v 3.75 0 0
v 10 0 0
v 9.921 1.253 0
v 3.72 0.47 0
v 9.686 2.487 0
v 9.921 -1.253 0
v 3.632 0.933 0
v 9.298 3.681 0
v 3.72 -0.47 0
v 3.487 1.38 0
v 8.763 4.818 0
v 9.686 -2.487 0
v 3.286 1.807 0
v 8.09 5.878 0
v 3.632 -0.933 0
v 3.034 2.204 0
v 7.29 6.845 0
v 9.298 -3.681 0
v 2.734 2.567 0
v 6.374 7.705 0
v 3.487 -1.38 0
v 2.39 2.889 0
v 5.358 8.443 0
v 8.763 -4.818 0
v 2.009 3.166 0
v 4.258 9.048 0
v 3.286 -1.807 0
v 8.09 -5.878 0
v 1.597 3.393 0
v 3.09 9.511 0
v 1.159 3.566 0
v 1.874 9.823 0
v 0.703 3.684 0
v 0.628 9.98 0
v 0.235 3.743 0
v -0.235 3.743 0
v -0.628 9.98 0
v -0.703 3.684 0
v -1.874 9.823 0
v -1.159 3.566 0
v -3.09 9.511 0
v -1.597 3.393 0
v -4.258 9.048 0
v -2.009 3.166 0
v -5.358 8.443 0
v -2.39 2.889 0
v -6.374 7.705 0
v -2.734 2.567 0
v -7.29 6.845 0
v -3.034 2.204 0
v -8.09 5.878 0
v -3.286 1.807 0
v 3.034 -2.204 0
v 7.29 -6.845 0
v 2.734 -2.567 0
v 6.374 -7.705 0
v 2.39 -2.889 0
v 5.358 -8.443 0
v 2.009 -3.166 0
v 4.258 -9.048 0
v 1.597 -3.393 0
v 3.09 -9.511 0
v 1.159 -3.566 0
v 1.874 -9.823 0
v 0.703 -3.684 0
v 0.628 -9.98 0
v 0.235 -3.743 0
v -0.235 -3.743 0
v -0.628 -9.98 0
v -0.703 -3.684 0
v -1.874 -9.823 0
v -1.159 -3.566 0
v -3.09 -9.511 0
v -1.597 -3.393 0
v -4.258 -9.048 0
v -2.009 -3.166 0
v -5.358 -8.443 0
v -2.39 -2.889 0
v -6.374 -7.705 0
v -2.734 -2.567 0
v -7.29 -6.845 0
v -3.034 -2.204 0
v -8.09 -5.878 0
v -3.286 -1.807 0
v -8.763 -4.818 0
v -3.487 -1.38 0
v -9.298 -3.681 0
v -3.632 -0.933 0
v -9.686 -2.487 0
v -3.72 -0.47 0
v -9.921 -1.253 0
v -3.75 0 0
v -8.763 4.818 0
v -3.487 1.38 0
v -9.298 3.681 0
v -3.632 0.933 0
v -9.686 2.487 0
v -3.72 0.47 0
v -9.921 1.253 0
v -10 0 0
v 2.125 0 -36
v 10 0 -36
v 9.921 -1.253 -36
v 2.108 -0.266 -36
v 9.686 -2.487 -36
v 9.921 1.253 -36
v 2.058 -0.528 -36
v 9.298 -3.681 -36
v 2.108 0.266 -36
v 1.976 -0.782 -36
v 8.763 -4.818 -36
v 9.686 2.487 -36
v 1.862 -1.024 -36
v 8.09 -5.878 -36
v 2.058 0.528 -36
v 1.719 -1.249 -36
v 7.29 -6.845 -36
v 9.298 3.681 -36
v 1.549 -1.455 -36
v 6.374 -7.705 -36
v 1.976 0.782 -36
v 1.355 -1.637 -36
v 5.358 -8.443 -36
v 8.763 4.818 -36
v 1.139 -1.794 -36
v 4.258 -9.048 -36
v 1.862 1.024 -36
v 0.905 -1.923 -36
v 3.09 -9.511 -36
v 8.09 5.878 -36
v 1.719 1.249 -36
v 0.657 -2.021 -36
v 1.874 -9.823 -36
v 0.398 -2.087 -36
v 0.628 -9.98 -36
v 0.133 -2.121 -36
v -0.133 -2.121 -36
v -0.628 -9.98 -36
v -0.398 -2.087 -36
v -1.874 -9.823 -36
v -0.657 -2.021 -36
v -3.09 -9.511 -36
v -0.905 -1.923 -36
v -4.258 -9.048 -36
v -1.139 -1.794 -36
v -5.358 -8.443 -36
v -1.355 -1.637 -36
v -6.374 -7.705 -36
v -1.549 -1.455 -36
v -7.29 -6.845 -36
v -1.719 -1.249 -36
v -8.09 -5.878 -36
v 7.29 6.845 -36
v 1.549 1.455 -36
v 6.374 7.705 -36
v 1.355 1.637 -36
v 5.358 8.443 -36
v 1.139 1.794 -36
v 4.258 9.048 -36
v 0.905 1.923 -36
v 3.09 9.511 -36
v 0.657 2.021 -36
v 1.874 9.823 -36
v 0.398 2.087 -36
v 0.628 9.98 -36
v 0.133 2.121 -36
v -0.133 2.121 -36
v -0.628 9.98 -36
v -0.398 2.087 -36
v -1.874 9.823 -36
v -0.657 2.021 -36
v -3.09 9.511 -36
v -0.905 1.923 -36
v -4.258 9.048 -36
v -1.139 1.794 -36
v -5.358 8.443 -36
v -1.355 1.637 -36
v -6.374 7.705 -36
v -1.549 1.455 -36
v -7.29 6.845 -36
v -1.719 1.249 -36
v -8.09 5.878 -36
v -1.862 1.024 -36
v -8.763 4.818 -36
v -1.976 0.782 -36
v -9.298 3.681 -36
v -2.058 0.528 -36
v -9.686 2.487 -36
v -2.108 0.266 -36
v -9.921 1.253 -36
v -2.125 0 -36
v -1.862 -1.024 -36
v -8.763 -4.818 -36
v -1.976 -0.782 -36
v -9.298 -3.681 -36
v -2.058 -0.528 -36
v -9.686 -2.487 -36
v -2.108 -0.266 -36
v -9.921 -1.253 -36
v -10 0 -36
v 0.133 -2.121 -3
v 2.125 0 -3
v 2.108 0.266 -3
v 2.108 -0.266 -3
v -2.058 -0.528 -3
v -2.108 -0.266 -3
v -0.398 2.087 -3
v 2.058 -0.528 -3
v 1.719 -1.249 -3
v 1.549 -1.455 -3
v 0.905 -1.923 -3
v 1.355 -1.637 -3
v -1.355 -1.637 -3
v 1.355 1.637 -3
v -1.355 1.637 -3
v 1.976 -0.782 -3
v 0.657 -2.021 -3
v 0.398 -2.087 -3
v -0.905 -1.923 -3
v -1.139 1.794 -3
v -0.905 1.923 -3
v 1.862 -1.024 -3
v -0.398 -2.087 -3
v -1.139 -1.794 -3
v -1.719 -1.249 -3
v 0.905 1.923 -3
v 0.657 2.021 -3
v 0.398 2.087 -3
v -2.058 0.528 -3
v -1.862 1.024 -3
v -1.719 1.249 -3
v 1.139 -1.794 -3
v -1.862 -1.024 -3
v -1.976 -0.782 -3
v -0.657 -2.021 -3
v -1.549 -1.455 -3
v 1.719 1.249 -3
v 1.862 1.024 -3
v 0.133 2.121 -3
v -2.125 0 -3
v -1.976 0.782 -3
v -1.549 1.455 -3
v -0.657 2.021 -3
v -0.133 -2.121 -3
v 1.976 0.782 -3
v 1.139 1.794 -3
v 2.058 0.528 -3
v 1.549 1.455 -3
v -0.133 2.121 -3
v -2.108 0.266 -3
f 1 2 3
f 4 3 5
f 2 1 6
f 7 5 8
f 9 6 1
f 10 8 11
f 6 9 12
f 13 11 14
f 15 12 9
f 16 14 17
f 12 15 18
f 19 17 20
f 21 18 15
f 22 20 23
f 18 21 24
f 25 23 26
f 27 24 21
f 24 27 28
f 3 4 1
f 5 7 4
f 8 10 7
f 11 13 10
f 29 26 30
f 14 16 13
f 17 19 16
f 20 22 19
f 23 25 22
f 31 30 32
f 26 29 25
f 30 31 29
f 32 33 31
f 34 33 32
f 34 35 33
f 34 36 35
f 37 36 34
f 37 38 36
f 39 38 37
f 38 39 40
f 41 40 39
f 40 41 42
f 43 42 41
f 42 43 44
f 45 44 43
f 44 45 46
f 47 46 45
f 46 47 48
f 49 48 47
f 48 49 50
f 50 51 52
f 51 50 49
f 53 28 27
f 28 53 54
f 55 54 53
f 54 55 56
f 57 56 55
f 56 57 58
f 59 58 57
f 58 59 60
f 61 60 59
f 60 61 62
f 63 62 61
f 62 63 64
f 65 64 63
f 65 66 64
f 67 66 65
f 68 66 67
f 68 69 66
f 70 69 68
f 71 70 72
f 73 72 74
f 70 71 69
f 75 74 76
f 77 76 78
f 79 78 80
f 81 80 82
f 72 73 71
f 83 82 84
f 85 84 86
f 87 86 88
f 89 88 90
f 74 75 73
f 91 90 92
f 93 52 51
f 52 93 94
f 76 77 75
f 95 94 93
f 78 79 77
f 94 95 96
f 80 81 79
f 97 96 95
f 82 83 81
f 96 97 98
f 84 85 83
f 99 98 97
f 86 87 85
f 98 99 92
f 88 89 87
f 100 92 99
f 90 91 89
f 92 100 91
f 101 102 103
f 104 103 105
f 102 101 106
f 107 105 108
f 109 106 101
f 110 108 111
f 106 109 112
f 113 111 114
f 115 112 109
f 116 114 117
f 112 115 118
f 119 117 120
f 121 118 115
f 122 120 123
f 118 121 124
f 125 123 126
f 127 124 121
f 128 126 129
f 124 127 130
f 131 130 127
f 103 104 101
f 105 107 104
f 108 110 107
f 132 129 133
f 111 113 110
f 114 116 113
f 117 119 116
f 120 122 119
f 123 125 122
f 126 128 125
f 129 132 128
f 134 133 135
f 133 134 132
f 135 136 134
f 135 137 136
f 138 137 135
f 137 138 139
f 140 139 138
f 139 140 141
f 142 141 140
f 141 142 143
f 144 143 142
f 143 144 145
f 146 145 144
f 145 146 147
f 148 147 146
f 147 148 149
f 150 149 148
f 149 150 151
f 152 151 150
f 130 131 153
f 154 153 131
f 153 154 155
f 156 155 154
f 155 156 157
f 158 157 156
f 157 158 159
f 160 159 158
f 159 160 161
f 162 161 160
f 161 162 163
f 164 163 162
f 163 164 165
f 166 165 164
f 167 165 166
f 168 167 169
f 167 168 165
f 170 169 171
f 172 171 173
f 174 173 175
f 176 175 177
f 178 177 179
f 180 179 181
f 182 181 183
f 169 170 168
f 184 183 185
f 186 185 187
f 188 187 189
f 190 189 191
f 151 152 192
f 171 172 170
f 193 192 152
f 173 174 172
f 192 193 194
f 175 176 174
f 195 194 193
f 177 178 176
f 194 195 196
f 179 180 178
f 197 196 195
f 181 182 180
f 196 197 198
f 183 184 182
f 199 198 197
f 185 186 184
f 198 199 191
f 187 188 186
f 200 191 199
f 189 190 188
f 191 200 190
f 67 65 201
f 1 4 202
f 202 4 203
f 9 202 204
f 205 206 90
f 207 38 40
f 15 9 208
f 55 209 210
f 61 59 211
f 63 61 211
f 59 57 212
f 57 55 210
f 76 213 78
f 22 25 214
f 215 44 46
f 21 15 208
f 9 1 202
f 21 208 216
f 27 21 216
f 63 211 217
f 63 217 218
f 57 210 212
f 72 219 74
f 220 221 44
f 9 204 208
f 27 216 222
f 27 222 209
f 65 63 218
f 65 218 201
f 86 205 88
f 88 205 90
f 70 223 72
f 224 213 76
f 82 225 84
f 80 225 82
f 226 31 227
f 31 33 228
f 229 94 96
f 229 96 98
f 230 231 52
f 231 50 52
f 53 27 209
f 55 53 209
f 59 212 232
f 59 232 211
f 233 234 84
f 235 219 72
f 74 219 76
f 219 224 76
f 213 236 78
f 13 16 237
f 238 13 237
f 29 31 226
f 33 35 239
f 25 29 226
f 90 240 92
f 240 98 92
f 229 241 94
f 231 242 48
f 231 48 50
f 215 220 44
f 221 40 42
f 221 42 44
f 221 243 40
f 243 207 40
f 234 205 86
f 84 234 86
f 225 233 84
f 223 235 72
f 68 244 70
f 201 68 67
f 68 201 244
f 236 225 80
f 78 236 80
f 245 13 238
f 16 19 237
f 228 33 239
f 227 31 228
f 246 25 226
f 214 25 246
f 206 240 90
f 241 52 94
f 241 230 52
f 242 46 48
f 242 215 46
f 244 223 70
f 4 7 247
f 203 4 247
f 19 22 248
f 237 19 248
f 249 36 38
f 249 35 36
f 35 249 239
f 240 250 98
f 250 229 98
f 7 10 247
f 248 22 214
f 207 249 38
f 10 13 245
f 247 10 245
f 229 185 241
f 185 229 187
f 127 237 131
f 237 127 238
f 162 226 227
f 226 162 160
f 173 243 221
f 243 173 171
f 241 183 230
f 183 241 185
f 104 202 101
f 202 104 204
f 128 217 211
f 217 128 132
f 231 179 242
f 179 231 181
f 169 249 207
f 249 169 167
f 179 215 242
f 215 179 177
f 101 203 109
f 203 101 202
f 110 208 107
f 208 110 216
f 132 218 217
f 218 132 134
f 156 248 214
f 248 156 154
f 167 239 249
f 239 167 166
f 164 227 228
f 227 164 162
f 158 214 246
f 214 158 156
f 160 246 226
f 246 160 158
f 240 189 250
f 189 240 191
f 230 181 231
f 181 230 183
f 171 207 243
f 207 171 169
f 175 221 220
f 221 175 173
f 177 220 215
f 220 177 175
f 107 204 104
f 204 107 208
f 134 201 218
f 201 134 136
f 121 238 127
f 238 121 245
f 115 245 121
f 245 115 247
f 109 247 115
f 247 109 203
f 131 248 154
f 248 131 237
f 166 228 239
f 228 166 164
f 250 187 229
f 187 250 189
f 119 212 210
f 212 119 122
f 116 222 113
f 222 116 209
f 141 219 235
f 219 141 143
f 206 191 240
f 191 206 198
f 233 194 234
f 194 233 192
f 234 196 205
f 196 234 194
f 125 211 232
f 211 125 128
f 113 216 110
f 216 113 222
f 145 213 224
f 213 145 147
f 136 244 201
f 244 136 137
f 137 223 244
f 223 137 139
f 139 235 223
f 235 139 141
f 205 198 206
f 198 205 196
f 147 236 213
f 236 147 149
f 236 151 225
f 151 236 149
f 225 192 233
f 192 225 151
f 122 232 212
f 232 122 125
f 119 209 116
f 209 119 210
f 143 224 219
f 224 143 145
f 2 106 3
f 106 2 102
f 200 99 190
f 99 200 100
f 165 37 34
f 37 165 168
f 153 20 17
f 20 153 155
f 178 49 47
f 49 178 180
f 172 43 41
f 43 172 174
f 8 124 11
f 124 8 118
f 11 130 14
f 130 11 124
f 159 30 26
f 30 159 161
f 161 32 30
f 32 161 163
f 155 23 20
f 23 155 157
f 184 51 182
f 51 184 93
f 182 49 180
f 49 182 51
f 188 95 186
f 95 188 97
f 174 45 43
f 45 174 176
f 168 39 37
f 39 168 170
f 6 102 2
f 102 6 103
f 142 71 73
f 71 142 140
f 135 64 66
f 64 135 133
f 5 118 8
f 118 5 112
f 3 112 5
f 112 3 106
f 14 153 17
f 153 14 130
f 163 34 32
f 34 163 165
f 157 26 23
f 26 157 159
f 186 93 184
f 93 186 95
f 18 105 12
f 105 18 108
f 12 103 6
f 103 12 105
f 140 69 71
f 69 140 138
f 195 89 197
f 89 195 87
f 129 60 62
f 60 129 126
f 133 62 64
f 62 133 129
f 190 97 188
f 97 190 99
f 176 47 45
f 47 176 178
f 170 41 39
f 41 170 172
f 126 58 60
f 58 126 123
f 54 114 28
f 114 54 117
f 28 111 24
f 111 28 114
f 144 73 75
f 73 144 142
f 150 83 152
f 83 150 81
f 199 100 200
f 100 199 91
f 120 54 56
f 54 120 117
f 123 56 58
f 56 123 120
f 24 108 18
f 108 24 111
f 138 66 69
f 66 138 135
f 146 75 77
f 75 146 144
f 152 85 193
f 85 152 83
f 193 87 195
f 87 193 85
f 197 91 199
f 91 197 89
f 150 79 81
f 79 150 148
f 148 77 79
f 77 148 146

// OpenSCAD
$fn = 50;


difference() {
	union() {
		translate(v = [0, 0, -36.0000000000]) {
			cylinder(h = 36, r = 10.0000000000);
		}
		cylinder(h = 0, r = 19.0000000000);
	}
	union() {
		translate(v = [0, 0, 0]) {
			rotate(a = [0, 0, 0]) {
				difference() {
					union() {
						#translate(v = [0, 0, -36.0000000000]) {
							cylinder(h = 36, r = 2.0000000000);
						}
						#translate(v = [0, 0, -3]) {
							cylinder(h = 3, r1 = 2.1250000000, r2 = 3.7500000000);
						}
						#translate(v = [0, 0, -36.0000000000]) {
							cylinder(h = 36, r = 2.1250000000);
						}
						#translate(v = [0, 0, -36.0000000000]) {
							cylinder(h = 36, r = 2.0000000000);
						}
					}
					union();
				}
			}
		}
	}
}
